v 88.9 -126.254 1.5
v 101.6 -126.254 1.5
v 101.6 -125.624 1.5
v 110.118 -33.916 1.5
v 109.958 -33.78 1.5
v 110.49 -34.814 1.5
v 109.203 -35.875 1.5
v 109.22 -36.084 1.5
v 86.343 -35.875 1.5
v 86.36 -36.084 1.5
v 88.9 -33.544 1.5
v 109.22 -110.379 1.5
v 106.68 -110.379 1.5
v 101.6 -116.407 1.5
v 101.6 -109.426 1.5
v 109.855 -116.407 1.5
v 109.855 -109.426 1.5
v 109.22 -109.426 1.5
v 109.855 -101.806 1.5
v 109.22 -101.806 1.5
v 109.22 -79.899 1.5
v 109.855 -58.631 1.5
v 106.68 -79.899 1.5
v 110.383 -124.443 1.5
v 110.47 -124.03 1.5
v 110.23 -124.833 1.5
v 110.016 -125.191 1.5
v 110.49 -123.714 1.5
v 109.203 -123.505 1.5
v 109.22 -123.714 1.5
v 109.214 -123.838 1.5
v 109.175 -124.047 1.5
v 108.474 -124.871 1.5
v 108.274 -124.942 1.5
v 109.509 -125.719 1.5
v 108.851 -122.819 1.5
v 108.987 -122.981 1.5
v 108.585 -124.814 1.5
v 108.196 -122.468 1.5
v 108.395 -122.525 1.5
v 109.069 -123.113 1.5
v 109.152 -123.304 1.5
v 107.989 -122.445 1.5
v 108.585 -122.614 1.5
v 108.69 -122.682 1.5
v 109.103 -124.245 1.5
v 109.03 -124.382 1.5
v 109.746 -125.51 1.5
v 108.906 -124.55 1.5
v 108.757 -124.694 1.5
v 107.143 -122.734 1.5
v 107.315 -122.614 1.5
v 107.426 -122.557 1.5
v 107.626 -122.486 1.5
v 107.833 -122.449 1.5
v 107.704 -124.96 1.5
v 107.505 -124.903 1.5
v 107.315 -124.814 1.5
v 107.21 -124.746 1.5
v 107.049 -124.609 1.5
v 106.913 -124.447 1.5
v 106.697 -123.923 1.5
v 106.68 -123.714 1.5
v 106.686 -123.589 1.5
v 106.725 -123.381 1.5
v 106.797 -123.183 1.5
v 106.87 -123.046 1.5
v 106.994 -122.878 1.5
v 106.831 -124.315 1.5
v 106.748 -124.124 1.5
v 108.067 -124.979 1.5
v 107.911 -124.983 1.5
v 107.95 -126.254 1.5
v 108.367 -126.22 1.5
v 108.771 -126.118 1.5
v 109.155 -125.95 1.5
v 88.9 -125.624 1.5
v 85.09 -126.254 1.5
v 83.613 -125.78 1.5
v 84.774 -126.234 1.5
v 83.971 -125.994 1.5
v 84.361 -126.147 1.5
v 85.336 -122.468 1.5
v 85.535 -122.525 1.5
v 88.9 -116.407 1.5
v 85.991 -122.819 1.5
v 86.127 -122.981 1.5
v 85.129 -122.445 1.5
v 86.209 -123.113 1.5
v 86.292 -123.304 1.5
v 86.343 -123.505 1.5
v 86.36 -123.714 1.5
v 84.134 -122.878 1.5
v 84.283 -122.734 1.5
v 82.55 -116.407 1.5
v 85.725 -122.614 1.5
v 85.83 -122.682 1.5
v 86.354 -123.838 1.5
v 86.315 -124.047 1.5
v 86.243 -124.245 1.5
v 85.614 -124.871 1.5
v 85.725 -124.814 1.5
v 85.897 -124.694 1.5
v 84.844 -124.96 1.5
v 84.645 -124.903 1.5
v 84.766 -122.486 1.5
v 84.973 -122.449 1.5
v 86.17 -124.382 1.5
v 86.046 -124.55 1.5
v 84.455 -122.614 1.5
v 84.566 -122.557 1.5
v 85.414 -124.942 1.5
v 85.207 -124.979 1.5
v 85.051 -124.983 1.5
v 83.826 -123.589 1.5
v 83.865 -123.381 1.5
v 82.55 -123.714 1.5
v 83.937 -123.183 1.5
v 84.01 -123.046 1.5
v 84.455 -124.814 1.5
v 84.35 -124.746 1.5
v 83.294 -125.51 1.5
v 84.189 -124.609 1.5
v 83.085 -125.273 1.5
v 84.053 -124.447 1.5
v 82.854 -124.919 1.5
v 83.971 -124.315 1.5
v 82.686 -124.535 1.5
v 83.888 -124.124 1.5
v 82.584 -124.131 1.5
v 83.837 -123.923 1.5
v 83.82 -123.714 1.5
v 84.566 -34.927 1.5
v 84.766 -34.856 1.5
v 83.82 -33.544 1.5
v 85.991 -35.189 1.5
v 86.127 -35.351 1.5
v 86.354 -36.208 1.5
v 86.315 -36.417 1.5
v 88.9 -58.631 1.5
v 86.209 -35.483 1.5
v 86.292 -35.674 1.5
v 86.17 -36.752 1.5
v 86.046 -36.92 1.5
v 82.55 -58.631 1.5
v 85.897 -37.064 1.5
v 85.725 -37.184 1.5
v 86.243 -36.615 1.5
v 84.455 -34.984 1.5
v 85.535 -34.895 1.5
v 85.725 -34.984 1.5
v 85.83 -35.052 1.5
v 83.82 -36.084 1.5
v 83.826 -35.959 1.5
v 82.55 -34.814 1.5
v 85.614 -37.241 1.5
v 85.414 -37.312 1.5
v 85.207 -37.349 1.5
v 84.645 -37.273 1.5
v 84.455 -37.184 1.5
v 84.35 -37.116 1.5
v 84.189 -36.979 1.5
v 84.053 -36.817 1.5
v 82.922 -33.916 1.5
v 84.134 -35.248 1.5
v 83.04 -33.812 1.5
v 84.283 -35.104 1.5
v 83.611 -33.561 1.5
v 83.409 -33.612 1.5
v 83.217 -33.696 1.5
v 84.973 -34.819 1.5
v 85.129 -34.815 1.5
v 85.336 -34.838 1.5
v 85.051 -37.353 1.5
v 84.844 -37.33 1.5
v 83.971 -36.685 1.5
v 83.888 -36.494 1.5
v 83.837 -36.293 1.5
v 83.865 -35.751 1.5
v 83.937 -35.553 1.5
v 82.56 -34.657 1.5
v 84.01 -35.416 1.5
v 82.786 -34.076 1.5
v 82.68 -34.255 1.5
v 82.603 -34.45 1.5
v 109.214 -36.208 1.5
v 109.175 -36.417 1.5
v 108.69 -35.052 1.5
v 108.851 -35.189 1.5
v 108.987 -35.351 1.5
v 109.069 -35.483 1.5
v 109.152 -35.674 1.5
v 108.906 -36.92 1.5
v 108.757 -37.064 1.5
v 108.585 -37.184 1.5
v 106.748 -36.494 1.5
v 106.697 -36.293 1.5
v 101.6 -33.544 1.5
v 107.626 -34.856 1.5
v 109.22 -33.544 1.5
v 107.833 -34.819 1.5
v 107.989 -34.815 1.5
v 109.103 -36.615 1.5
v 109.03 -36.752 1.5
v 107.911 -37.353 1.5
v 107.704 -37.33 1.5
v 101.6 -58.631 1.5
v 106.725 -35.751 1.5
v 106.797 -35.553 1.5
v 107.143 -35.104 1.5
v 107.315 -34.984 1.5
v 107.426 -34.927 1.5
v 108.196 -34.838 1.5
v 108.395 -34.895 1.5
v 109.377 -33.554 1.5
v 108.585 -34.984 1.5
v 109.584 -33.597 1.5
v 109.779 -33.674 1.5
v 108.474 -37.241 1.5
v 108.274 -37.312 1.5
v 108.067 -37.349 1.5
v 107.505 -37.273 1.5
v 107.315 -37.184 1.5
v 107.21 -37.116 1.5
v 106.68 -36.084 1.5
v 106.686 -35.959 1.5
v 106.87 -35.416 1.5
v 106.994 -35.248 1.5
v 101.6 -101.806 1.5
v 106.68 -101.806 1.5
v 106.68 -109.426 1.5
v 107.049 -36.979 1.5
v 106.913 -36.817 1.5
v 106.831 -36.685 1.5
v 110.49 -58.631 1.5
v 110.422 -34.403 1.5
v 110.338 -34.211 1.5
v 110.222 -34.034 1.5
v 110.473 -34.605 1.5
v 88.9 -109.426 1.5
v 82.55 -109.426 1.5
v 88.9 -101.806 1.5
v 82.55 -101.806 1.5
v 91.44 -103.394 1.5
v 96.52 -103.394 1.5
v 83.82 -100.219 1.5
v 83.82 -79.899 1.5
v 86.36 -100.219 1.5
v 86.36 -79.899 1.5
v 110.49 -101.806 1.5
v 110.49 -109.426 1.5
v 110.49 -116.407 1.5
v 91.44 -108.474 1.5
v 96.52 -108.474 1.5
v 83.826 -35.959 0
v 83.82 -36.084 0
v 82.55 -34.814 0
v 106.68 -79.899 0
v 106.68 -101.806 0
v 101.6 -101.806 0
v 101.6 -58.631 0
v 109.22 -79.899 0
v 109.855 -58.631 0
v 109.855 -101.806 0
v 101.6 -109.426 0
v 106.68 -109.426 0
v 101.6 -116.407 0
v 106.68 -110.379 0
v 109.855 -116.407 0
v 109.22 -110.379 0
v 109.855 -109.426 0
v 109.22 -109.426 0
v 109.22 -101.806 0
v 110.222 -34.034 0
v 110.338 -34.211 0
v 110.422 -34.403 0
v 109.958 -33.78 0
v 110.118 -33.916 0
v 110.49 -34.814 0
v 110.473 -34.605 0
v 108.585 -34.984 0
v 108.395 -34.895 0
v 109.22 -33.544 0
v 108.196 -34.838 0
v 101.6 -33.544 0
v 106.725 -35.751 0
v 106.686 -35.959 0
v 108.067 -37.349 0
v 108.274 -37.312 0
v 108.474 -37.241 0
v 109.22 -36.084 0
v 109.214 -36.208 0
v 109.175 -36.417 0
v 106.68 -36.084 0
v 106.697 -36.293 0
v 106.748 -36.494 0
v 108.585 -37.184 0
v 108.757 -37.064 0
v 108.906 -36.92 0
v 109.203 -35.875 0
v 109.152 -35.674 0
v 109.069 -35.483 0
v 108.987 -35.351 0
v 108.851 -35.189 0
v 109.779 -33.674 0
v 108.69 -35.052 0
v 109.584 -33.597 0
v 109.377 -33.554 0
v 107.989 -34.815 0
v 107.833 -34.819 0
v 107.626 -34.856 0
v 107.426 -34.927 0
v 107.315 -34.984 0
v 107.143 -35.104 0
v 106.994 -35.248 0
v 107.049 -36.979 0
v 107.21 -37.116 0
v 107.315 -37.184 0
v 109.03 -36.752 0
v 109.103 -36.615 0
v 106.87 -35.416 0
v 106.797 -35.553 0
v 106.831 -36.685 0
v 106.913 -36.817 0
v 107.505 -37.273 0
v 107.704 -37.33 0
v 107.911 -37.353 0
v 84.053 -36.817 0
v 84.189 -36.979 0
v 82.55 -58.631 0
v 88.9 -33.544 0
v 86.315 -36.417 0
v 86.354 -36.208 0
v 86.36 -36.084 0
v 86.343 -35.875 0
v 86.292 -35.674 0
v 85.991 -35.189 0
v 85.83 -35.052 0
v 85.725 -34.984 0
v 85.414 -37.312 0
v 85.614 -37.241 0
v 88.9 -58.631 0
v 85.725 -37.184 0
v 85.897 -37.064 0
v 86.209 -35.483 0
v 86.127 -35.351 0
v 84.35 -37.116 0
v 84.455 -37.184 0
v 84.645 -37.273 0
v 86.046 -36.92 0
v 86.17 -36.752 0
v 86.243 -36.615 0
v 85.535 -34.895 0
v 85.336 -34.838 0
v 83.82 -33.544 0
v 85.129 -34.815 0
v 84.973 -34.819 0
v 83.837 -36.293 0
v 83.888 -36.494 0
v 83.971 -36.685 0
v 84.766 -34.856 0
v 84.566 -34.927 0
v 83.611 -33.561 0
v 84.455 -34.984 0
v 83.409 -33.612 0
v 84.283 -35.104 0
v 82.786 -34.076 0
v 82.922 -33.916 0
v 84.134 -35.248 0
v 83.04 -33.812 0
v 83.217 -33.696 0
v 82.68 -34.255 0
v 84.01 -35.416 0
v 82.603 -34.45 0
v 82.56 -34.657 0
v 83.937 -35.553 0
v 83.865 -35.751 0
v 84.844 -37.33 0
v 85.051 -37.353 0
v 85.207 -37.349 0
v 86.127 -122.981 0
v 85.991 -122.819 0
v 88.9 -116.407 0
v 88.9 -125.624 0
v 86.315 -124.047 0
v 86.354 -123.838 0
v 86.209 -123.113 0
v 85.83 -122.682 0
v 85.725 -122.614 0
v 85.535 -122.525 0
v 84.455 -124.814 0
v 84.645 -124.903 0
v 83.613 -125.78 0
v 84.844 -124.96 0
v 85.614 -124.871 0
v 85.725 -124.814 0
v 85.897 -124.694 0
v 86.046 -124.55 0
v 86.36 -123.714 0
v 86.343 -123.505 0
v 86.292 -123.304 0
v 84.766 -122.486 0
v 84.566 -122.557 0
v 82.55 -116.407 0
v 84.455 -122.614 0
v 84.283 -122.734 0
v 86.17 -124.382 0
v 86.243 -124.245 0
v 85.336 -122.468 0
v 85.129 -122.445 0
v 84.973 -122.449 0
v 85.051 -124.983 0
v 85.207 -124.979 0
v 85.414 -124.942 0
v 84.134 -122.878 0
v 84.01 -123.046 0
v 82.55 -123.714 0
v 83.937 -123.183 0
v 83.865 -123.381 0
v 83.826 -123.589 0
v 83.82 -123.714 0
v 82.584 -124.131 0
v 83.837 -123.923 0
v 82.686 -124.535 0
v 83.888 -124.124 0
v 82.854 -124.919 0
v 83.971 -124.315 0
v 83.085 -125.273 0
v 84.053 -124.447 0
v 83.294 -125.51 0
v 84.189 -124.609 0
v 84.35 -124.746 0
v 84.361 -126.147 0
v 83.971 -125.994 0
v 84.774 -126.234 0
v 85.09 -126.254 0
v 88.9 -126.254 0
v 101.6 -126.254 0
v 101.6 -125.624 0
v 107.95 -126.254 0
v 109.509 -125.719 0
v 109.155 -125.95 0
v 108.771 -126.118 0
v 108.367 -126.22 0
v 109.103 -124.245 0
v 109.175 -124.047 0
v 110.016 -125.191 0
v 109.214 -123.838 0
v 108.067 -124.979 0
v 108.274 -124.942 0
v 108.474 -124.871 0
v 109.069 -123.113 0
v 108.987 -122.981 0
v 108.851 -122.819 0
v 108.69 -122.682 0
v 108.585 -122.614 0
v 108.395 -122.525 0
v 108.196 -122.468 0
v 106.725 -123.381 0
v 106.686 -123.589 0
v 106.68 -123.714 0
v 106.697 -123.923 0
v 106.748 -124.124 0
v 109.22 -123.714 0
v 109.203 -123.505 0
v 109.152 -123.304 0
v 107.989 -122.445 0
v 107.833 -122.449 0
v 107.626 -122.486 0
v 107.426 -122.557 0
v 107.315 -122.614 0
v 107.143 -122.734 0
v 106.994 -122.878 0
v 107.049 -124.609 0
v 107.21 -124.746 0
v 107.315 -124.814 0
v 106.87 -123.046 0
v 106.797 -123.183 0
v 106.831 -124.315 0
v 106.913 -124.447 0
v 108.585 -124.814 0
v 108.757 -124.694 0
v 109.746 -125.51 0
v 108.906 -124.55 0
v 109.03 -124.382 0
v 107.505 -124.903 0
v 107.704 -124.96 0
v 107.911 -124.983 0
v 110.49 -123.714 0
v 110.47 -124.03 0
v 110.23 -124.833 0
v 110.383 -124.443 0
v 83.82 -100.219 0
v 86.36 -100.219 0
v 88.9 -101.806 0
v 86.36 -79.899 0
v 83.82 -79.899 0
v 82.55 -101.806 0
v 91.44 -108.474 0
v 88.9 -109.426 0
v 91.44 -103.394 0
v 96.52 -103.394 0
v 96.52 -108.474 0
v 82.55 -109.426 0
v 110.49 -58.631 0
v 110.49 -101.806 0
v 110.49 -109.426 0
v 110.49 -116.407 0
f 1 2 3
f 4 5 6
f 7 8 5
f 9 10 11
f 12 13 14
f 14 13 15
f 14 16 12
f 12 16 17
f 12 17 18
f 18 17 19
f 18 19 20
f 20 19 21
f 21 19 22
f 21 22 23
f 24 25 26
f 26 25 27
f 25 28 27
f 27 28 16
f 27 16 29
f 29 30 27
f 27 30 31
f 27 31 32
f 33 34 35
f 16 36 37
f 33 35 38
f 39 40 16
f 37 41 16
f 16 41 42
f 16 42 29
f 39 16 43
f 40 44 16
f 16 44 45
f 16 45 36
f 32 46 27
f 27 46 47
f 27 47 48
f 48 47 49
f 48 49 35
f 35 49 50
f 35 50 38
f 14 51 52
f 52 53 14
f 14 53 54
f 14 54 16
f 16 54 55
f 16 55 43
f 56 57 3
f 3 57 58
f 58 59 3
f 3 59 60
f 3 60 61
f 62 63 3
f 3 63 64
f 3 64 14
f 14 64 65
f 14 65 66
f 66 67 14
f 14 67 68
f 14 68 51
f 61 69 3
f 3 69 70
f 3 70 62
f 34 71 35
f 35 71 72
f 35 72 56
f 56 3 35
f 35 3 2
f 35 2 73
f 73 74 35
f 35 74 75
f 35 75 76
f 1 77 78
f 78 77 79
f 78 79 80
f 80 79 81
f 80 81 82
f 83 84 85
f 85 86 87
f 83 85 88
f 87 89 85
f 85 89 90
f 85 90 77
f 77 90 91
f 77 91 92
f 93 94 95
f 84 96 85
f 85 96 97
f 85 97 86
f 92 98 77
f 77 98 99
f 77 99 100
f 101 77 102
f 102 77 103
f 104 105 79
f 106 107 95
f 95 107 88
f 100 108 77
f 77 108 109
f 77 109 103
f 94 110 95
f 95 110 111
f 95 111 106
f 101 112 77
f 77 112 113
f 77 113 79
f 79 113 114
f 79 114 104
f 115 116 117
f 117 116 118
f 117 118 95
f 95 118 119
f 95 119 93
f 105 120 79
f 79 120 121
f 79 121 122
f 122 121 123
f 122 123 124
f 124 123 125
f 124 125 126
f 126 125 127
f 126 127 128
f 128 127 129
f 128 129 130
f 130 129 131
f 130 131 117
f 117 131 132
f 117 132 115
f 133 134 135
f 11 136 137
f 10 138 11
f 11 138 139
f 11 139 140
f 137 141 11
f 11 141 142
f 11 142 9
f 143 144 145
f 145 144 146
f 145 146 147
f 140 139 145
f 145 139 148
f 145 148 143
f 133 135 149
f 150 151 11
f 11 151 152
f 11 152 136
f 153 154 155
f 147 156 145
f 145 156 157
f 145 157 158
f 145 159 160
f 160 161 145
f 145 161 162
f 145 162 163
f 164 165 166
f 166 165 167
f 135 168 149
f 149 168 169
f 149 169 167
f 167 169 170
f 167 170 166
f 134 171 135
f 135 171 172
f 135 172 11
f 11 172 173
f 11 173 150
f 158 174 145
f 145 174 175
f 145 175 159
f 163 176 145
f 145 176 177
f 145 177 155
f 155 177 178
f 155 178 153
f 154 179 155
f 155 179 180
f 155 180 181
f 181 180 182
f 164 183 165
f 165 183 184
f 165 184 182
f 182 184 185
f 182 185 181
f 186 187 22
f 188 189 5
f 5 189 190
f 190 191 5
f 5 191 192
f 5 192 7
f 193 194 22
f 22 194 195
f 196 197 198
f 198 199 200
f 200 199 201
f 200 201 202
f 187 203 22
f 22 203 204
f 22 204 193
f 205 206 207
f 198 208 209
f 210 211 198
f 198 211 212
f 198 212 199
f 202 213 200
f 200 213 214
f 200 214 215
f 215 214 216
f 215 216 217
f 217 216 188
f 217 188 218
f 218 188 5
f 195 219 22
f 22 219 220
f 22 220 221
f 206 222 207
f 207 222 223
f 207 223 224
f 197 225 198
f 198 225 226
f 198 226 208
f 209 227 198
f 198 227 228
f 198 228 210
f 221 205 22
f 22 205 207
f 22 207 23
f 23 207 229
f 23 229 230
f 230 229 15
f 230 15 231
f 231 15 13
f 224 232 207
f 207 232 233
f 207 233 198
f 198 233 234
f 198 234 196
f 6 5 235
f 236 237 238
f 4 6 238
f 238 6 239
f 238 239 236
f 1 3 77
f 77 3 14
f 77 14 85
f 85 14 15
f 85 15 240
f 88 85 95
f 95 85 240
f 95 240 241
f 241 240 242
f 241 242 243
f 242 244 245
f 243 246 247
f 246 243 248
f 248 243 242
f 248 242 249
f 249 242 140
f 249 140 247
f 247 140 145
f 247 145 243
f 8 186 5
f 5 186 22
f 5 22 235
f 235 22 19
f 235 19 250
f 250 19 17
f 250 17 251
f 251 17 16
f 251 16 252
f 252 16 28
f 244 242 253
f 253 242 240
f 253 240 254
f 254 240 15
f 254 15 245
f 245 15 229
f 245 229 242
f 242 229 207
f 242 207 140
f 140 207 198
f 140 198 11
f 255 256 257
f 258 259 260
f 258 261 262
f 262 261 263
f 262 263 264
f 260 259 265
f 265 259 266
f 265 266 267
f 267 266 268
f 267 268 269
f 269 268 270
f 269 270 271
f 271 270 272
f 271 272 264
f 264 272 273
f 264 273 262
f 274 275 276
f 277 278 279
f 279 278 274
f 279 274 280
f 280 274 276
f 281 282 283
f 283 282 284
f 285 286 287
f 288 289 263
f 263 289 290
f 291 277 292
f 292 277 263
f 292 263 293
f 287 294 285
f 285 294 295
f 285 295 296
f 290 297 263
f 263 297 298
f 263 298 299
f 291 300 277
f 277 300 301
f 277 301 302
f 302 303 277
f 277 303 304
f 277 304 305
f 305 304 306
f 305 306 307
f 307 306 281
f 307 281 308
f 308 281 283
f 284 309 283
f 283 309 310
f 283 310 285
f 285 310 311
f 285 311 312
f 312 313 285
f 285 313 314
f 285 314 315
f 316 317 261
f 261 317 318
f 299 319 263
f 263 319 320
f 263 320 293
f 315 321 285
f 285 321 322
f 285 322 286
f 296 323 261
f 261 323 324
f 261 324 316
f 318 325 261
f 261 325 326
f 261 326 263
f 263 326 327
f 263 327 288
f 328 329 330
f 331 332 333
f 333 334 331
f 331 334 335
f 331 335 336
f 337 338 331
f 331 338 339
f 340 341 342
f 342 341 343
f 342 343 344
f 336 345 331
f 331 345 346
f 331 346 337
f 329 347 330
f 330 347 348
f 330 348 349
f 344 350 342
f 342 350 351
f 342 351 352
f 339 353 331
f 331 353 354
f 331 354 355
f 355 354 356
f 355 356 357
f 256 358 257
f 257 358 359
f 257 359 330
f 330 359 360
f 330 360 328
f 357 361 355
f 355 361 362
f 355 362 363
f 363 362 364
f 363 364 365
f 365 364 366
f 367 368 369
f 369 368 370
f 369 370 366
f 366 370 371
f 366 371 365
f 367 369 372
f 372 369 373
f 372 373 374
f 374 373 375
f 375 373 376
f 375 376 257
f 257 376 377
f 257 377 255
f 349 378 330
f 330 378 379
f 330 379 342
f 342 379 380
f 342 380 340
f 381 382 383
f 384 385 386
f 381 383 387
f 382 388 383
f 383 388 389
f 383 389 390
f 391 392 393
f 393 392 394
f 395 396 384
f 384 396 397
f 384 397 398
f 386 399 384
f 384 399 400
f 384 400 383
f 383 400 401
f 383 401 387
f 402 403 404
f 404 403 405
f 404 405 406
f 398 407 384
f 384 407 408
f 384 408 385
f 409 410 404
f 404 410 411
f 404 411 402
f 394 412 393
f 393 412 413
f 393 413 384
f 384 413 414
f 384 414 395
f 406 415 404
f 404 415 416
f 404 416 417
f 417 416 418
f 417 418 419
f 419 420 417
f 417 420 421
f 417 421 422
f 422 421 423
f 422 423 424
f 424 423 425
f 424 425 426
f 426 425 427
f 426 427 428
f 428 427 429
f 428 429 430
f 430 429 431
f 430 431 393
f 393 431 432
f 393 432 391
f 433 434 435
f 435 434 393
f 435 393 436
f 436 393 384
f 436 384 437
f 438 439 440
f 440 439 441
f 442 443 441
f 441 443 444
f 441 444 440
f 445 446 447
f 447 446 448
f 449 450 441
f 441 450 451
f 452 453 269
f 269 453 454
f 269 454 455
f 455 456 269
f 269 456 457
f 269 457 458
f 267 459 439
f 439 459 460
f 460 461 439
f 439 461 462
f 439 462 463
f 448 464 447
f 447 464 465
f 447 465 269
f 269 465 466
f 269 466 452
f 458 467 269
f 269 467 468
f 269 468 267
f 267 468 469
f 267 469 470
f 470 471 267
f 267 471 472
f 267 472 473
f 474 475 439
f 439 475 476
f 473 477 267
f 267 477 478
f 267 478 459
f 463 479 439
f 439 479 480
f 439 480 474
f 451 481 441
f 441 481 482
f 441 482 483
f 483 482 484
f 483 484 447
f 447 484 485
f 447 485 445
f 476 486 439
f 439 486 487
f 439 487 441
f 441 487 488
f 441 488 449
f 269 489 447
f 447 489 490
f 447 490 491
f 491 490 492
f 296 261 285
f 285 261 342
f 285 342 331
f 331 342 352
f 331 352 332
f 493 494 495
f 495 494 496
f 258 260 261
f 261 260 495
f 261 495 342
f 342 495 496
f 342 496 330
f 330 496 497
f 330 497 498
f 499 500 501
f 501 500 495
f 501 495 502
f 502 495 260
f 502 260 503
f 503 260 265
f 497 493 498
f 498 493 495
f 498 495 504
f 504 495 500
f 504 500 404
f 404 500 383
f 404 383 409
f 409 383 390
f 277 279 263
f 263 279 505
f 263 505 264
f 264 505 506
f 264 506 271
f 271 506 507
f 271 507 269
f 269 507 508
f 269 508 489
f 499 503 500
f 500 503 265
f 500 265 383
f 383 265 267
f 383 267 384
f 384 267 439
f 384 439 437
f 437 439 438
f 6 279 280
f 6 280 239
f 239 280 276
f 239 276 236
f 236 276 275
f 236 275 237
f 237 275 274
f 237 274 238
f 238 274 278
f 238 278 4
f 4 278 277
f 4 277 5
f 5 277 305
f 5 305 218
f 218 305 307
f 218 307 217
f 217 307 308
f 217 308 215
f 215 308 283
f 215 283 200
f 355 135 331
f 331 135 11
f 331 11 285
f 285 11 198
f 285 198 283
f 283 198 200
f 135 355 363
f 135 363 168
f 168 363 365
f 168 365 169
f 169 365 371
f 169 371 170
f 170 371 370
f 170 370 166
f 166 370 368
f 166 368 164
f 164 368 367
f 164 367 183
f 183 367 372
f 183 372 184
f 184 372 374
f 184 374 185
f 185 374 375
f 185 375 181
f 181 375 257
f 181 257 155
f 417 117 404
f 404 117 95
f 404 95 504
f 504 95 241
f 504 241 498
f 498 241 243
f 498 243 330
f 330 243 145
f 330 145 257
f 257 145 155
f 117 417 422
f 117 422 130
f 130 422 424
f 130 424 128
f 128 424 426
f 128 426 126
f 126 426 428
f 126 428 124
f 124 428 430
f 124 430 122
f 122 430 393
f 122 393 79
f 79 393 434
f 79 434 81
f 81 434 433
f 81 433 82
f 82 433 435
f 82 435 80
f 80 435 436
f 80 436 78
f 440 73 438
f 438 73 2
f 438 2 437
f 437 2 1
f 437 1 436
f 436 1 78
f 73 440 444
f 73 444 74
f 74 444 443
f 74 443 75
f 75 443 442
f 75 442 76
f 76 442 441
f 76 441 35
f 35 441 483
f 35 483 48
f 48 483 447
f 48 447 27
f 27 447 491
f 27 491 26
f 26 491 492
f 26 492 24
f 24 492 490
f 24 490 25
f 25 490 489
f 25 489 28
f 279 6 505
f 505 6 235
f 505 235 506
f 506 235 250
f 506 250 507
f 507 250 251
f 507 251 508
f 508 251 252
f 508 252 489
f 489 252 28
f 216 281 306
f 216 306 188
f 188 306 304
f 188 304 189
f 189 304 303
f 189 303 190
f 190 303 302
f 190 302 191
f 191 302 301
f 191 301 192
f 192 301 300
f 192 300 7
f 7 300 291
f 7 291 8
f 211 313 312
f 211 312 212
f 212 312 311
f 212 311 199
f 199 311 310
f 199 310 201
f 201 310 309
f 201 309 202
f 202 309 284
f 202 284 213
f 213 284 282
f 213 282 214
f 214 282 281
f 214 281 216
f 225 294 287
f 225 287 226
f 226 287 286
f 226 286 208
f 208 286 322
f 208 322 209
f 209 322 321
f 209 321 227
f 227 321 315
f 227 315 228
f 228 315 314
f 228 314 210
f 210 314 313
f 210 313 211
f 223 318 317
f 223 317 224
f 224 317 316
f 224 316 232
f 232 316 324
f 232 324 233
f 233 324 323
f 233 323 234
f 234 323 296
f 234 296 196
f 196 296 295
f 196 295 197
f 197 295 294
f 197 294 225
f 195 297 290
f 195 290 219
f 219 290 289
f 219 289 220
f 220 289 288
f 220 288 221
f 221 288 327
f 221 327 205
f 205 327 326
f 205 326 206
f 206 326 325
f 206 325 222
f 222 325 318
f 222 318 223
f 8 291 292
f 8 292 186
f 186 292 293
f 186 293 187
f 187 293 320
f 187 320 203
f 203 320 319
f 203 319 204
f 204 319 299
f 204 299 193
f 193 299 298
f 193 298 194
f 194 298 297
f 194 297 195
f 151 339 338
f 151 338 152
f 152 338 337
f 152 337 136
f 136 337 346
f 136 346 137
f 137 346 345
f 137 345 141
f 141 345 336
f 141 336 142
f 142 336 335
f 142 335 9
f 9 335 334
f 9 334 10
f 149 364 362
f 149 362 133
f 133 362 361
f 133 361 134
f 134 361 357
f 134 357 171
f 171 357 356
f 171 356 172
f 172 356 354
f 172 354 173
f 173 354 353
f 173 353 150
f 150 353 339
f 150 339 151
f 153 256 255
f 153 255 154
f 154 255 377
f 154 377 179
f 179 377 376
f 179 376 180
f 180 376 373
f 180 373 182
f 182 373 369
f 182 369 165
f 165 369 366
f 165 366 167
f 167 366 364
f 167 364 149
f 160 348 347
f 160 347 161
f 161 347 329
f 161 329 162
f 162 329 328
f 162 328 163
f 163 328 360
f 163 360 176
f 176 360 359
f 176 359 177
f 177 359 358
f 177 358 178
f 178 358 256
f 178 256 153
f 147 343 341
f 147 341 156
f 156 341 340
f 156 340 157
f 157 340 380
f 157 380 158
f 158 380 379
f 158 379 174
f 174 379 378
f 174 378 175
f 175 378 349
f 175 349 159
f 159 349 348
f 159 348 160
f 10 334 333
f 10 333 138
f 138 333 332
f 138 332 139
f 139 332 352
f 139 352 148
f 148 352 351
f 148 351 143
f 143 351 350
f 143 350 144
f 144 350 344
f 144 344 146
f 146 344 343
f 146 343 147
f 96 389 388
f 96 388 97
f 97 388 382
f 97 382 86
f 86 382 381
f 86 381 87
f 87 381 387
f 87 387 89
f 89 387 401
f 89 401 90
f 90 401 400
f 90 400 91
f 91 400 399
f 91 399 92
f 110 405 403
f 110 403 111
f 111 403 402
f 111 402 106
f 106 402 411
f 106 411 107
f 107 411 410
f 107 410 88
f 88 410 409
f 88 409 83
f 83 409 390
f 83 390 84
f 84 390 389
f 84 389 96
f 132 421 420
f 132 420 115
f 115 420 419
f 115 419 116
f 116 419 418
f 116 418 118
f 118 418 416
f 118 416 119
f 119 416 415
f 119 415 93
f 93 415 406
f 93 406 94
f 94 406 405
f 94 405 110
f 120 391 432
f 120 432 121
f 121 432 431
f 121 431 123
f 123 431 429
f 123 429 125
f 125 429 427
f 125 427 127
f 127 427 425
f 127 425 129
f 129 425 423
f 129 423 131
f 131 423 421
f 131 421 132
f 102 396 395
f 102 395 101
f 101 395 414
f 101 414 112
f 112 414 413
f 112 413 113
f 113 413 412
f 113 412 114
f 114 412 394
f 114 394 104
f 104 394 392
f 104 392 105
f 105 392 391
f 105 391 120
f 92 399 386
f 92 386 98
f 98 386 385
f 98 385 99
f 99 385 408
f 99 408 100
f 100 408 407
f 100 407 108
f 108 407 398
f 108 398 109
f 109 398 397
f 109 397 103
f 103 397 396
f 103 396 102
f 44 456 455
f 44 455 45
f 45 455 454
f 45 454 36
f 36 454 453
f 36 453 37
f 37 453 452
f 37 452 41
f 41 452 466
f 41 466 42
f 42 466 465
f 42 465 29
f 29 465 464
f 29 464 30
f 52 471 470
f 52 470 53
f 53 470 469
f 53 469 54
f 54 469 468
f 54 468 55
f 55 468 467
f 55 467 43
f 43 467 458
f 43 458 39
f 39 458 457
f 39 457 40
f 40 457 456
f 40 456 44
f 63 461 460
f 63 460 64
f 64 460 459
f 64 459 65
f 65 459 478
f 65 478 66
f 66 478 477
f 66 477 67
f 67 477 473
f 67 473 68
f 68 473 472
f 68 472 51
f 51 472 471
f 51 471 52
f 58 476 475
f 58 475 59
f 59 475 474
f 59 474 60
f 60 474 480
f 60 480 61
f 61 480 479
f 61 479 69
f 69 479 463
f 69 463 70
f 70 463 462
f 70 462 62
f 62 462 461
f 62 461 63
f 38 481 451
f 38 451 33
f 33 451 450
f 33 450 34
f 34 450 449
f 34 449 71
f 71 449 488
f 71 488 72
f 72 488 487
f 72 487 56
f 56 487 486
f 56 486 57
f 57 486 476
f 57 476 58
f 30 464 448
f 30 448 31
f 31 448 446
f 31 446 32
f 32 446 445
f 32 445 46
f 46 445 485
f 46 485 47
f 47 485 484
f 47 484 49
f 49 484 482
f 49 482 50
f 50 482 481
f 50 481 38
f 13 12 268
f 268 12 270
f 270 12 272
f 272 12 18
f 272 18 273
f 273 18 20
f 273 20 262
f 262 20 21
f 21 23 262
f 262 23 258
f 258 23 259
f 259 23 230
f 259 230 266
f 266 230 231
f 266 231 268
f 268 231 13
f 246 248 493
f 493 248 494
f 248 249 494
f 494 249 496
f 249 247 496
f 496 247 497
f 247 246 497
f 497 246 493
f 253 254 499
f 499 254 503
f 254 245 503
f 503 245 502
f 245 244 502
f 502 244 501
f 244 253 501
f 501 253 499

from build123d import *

# Parameters (mm, degrees)
MODEL_W            = 2.54
MODEL_H            = 30.48
MODEL_H_2          = 20.32
MODEL_W_2          = 5.08
MODEL_H_3          = 5.08
BOSS_EXTRU_1_DEPTH = 1.5


with BuildPart() as part:
    # Model → Boss.-Extru.1 (new body)
    with BuildSketch(Plane.XY):
        with BuildLine():
            Line((110.49, -34.813931), (110.49, -38.623931))
            Line((110.49, -38.623931), (110.49, -39.893931))
            Line((110.49, -39.893931), (110.49, -123.713931))
            add(Edge.make_bspline(
                [(109.746051, -125.509982), (110.222394, -125.03364), (110.49, -124.387581), (110.49, -123.713931)],
                knots=[0, 0, 0, 0, 1, 1, 1, 1], degree=3))
            add(Edge.make_bspline(
                [(107.95, -126.253931), (108.62365, -126.253931), (109.269709, -125.986325), (109.746051, -125.509982)],
                knots=[0, 0, 0, 0, 1, 1, 1, 1], degree=3))
            Line((107.95, -126.253931), (85.09, -126.253931))
            add(Edge.make_bspline(
                [(83.293949, -125.509982), (83.770291, -125.986325), (84.41635, -126.253931), (85.09, -126.253931)],
                knots=[0, 0, 0, 0, 1, 1, 1, 1], degree=3))
            add(Edge.make_bspline(
                [(82.55, -123.713931), (82.55, -124.387581), (82.817606, -125.03364), (83.293949, -125.509982)],
                knots=[0, 0, 0, 0, 1, 1, 1, 1], degree=3))
            Line((82.55, -123.713931), (82.55, -39.893931))
            Line((82.55, -39.893931), (82.55, -38.623931))
            Line((82.55, -38.623931), (82.55, -34.813931))
            add(Edge.make_bspline(
                [(82.921974, -33.915905), (82.683803, -34.154076), (82.55, -34.477106), (82.55, -34.813931)],
                knots=[0, 0, 0, 0, 1, 1, 1, 1], degree=3))
            add(Edge.make_bspline(
                [(83.82, -33.543931), (83.483175, -33.543931), (83.160146, -33.677734), (82.921974, -33.915905)],
                knots=[0, 0, 0, 0, 1, 1, 1, 1], degree=3))
            Line((83.82, -33.543931), (109.22, -33.543931))
            add(Edge.make_bspline(
                [(110.118026, -33.915905), (109.879854, -33.677734), (109.556825, -33.543931), (109.22, -33.543931)],
                knots=[0, 0, 0, 0, 1, 1, 1, 1], degree=3))
            add(Edge.make_bspline(
                [(110.49, -34.813931), (110.49, -34.477106), (110.356197, -34.154076), (110.118026, -33.915905)],
                knots=[0, 0, 0, 0, 1, 1, 1, 1], degree=3))
        make_face()
        with Locations((107.95, -95.138931)):
            Rectangle(MODEL_W, MODEL_H, mode=Mode.SUBTRACT)
        with Locations((85.09, -90.058931)):
            Rectangle(MODEL_W, MODEL_H_2, mode=Mode.SUBTRACT)
        with Locations((93.98, -105.933931)):
            Rectangle(MODEL_W_2, MODEL_H_3, mode=Mode.SUBTRACT)
        with BuildLine():
            add(Edge.make_bspline(
                [(109.22, -36.083931), (109.22, -36.537658), (108.977939, -36.956919), (108.585, -37.183783)],
                knots=[0, 0, 0, 0, 1, 1, 1, 1], degree=3))
            add(Edge.make_bspline(
                [(108.585, -37.183783), (108.192061, -37.410647), (107.707939, -37.410647), (107.315, -37.183783)],
                knots=[0, 0, 0, 0, 1, 1, 1, 1], degree=3))
            add(Edge.make_bspline(
                [(107.315, -37.183783), (106.922061, -36.956919), (106.68, -36.537658), (106.68, -36.083931)],
                knots=[0, 0, 0, 0, 1, 1, 1, 1], degree=3))
            add(Edge.make_bspline(
                [(106.68, -36.083931), (106.68, -35.630204), (106.922061, -35.210942), (107.315, -34.984079)],
                knots=[0, 0, 0, 0, 1, 1, 1, 1], degree=3))
            add(Edge.make_bspline(
                [(107.315, -34.984079), (107.707939, -34.757215), (108.192061, -34.757215), (108.585, -34.984079)],
                knots=[0, 0, 0, 0, 1, 1, 1, 1], degree=3))
            add(Edge.make_bspline(
                [(108.585, -34.984079), (108.977939, -35.210942), (109.22, -35.630204), (109.22, -36.083931)],
                knots=[0, 0, 0, 0, 1, 1, 1, 1], degree=3))
        make_face(mode=Mode.SUBTRACT)
        with BuildLine():
            add(Edge.make_bspline(
                [(86.36, -36.083931), (86.36, -36.537658), (86.117939, -36.956919), (85.725, -37.183783)],
                knots=[0, 0, 0, 0, 1, 1, 1, 1], degree=3))
            add(Edge.make_bspline(
                [(85.725, -37.183783), (85.332061, -37.410647), (84.847939, -37.410647), (84.455, -37.183783)],
                knots=[0, 0, 0, 0, 1, 1, 1, 1], degree=3))
            add(Edge.make_bspline(
                [(84.455, -37.183783), (84.062061, -36.956919), (83.82, -36.537658), (83.82, -36.083931)],
                knots=[0, 0, 0, 0, 1, 1, 1, 1], degree=3))
            add(Edge.make_bspline(
                [(83.82, -36.083931), (83.82, -35.630204), (84.062061, -35.210942), (84.455, -34.984079)],
                knots=[0, 0, 0, 0, 1, 1, 1, 1], degree=3))
            add(Edge.make_bspline(
                [(84.455, -34.984079), (84.847939, -34.757215), (85.332061, -34.757215), (85.725, -34.984079)],
                knots=[0, 0, 0, 0, 1, 1, 1, 1], degree=3))
            add(Edge.make_bspline(
                [(85.725, -34.984079), (86.117939, -35.210942), (86.36, -35.630204), (86.36, -36.083931)],
                knots=[0, 0, 0, 0, 1, 1, 1, 1], degree=3))
        make_face(mode=Mode.SUBTRACT)
        with BuildLine():
            add(Edge.make_bspline(
                [(86.36, -123.713931), (86.36, -124.167658), (86.117939, -124.586919), (85.725, -124.813783)],
                knots=[0, 0, 0, 0, 1, 1, 1, 1], degree=3))
            add(Edge.make_bspline(
                [(85.725, -124.813783), (85.332061, -125.040647), (84.847939, -125.040647), (84.455, -124.813783)],
                knots=[0, 0, 0, 0, 1, 1, 1, 1], degree=3))
            add(Edge.make_bspline(
                [(84.455, -124.813783), (84.062061, -124.586919), (83.82, -124.167658), (83.82, -123.713931)],
                knots=[0, 0, 0, 0, 1, 1, 1, 1], degree=3))
            add(Edge.make_bspline(
                [(83.82, -123.713931), (83.82, -123.260204), (84.062061, -122.840942), (84.455, -122.614079)],
                knots=[0, 0, 0, 0, 1, 1, 1, 1], degree=3))
            add(Edge.make_bspline(
                [(84.455, -122.614079), (84.847939, -122.387215), (85.332061, -122.387215), (85.725, -122.614079)],
                knots=[0, 0, 0, 0, 1, 1, 1, 1], degree=3))
            add(Edge.make_bspline(
                [(85.725, -122.614079), (86.117939, -122.840942), (86.36, -123.260204), (86.36, -123.713931)],
                knots=[0, 0, 0, 0, 1, 1, 1, 1], degree=3))
        make_face(mode=Mode.SUBTRACT)
        with BuildLine():
            add(Edge.make_bspline(
                [(109.22, -123.713931), (109.22, -124.167658), (108.977939, -124.586919), (108.585, -124.813783)],
                knots=[0, 0, 0, 0, 1, 1, 1, 1], degree=3))
            add(Edge.make_bspline(
                [(108.585, -124.813783), (108.192061, -125.040647), (107.707939, -125.040647), (107.315, -124.813783)],
                knots=[0, 0, 0, 0, 1, 1, 1, 1], degree=3))
            add(Edge.make_bspline(
                [(107.315, -124.813783), (106.922061, -124.586919), (106.68, -124.167658), (106.68, -123.713931)],
                knots=[0, 0, 0, 0, 1, 1, 1, 1], degree=3))
            add(Edge.make_bspline(
                [(106.68, -123.713931), (106.68, -123.260204), (106.922061, -122.840942), (107.315, -122.614079)],
                knots=[0, 0, 0, 0, 1, 1, 1, 1], degree=3))
            add(Edge.make_bspline(
                [(107.315, -122.614079), (107.707939, -122.387215), (108.192061, -122.387215), (108.585, -122.614079)],
                knots=[0, 0, 0, 0, 1, 1, 1, 1], degree=3))
            add(Edge.make_bspline(
                [(108.585, -122.614079), (108.977939, -122.840942), (109.22, -123.260204), (109.22, -123.713931)],
                knots=[0, 0, 0, 0, 1, 1, 1, 1], degree=3))
        make_face(mode=Mode.SUBTRACT)
    extrude(amount=BOSS_EXTRU_1_DEPTH)


solid = part.part
